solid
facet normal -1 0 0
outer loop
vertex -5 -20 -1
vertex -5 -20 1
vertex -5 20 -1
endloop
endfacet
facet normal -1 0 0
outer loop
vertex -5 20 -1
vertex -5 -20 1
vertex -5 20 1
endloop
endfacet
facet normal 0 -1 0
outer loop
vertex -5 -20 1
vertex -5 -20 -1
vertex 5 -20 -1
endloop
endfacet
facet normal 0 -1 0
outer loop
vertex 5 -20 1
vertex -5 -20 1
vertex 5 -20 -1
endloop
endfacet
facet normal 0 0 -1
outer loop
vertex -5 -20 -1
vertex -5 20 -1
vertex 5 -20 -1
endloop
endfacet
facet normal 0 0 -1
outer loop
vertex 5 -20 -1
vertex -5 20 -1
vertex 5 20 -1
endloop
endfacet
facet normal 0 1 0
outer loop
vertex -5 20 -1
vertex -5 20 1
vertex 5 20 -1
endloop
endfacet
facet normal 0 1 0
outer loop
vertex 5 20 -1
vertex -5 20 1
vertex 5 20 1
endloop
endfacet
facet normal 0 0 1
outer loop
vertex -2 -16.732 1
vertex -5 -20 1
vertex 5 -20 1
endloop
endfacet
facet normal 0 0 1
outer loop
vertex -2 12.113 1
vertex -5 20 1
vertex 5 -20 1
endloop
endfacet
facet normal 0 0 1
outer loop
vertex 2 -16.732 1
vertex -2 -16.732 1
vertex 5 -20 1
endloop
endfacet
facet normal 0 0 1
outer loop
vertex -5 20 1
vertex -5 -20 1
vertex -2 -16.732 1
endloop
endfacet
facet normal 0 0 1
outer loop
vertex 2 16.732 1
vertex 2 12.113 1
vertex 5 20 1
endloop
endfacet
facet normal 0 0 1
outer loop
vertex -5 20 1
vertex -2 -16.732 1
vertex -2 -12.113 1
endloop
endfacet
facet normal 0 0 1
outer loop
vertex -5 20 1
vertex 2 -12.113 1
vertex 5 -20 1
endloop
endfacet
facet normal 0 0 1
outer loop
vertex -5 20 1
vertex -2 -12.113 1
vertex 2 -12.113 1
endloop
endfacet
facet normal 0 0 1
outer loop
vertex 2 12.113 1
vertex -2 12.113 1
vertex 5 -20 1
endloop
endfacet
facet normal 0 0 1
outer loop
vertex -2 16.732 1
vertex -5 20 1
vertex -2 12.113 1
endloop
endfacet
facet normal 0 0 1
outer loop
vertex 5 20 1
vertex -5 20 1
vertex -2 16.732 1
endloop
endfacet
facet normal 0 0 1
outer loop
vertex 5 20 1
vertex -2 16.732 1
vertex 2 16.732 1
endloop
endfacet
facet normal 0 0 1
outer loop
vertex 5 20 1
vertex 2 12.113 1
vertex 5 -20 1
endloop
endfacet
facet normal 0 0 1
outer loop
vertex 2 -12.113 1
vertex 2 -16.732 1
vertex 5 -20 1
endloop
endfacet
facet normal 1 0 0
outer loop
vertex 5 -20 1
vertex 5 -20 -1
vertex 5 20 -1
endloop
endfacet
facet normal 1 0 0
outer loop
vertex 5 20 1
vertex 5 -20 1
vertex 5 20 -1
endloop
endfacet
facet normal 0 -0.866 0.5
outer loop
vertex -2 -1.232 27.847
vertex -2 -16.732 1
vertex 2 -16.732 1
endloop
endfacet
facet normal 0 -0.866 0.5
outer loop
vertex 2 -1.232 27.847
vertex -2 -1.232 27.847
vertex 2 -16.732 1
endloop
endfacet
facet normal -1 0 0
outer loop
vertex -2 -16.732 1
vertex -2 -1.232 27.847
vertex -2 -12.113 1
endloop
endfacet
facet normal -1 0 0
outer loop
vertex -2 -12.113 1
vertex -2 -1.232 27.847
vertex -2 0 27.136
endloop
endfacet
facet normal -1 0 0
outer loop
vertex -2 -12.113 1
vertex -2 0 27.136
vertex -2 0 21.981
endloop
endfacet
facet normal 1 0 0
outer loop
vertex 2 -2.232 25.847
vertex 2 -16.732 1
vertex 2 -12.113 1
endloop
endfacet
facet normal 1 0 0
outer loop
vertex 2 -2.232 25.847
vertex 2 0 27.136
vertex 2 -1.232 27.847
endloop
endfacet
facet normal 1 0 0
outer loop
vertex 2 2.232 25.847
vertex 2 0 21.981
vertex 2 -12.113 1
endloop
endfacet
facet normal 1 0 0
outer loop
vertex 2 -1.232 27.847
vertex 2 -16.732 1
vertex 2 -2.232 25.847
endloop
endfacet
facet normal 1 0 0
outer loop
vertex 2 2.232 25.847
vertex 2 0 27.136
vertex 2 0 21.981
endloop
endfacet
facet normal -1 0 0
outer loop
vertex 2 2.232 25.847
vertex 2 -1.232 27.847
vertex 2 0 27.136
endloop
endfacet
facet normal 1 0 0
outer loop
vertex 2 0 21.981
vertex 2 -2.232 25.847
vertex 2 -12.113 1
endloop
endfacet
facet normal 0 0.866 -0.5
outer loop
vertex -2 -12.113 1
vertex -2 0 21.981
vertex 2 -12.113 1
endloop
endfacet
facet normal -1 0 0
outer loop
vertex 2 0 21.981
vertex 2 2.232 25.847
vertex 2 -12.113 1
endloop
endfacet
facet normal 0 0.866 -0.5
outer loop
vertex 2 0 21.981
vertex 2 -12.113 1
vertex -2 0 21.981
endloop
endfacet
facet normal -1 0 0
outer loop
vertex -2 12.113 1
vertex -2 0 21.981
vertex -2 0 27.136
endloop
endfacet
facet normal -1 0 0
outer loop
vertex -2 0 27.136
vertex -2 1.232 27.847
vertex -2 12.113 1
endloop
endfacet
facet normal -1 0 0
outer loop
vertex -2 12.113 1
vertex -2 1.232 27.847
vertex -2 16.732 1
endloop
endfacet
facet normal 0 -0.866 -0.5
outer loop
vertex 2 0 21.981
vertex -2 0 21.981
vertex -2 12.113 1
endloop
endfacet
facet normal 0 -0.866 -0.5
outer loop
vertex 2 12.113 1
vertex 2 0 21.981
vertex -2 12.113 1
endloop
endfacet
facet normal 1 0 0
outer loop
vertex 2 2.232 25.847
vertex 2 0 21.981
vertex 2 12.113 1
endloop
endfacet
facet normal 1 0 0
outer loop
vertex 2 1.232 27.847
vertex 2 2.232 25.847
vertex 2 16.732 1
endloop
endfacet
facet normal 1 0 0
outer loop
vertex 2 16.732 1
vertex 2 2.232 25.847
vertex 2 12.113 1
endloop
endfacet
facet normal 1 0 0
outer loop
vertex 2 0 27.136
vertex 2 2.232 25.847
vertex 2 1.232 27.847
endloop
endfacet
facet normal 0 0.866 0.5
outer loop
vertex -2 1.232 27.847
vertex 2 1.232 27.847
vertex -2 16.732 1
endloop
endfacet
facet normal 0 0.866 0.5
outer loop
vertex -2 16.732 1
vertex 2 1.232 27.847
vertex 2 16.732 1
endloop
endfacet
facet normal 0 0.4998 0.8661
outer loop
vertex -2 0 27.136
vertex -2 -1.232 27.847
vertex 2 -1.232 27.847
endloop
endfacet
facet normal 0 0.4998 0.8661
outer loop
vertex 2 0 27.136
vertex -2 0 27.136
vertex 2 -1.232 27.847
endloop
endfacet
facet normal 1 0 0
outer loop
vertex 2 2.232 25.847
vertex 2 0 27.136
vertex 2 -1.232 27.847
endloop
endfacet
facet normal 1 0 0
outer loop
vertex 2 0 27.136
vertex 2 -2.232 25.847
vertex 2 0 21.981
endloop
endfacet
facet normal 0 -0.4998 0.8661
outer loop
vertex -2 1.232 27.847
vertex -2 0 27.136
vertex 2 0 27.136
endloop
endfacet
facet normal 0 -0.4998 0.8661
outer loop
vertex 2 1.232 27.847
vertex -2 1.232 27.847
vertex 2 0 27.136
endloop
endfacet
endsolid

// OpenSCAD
//translate([0, sqrt(3) * 40 / sqrt(4), 0])

MAIN_MODEL = 0;
ARMS = 1;

mode = MAIN_MODEL;

if (mode == MAIN_MODEL) {
	translate([0, 15, 0])
	rotate([30, 0, 0])
	translate([-2, -2, 0])
	cube([4, 4, 31]);

	rotate([0, 0, 180])
	translate([0, 15, 0])
	rotate([30, 0, 0])
	translate([-2, -2, 0])
	cube([4, 4, 31]);


	translate([-5, -20, -1])
	cube([10, 40, 2]);

/*
	color("green")
	translate([-5, -20, 1])
	cube([10, 40, 40]);
*/

} else if (mode == ARMS) {
	translate([-5, -20, 1])
	cube([10, 40, 40]);
}
